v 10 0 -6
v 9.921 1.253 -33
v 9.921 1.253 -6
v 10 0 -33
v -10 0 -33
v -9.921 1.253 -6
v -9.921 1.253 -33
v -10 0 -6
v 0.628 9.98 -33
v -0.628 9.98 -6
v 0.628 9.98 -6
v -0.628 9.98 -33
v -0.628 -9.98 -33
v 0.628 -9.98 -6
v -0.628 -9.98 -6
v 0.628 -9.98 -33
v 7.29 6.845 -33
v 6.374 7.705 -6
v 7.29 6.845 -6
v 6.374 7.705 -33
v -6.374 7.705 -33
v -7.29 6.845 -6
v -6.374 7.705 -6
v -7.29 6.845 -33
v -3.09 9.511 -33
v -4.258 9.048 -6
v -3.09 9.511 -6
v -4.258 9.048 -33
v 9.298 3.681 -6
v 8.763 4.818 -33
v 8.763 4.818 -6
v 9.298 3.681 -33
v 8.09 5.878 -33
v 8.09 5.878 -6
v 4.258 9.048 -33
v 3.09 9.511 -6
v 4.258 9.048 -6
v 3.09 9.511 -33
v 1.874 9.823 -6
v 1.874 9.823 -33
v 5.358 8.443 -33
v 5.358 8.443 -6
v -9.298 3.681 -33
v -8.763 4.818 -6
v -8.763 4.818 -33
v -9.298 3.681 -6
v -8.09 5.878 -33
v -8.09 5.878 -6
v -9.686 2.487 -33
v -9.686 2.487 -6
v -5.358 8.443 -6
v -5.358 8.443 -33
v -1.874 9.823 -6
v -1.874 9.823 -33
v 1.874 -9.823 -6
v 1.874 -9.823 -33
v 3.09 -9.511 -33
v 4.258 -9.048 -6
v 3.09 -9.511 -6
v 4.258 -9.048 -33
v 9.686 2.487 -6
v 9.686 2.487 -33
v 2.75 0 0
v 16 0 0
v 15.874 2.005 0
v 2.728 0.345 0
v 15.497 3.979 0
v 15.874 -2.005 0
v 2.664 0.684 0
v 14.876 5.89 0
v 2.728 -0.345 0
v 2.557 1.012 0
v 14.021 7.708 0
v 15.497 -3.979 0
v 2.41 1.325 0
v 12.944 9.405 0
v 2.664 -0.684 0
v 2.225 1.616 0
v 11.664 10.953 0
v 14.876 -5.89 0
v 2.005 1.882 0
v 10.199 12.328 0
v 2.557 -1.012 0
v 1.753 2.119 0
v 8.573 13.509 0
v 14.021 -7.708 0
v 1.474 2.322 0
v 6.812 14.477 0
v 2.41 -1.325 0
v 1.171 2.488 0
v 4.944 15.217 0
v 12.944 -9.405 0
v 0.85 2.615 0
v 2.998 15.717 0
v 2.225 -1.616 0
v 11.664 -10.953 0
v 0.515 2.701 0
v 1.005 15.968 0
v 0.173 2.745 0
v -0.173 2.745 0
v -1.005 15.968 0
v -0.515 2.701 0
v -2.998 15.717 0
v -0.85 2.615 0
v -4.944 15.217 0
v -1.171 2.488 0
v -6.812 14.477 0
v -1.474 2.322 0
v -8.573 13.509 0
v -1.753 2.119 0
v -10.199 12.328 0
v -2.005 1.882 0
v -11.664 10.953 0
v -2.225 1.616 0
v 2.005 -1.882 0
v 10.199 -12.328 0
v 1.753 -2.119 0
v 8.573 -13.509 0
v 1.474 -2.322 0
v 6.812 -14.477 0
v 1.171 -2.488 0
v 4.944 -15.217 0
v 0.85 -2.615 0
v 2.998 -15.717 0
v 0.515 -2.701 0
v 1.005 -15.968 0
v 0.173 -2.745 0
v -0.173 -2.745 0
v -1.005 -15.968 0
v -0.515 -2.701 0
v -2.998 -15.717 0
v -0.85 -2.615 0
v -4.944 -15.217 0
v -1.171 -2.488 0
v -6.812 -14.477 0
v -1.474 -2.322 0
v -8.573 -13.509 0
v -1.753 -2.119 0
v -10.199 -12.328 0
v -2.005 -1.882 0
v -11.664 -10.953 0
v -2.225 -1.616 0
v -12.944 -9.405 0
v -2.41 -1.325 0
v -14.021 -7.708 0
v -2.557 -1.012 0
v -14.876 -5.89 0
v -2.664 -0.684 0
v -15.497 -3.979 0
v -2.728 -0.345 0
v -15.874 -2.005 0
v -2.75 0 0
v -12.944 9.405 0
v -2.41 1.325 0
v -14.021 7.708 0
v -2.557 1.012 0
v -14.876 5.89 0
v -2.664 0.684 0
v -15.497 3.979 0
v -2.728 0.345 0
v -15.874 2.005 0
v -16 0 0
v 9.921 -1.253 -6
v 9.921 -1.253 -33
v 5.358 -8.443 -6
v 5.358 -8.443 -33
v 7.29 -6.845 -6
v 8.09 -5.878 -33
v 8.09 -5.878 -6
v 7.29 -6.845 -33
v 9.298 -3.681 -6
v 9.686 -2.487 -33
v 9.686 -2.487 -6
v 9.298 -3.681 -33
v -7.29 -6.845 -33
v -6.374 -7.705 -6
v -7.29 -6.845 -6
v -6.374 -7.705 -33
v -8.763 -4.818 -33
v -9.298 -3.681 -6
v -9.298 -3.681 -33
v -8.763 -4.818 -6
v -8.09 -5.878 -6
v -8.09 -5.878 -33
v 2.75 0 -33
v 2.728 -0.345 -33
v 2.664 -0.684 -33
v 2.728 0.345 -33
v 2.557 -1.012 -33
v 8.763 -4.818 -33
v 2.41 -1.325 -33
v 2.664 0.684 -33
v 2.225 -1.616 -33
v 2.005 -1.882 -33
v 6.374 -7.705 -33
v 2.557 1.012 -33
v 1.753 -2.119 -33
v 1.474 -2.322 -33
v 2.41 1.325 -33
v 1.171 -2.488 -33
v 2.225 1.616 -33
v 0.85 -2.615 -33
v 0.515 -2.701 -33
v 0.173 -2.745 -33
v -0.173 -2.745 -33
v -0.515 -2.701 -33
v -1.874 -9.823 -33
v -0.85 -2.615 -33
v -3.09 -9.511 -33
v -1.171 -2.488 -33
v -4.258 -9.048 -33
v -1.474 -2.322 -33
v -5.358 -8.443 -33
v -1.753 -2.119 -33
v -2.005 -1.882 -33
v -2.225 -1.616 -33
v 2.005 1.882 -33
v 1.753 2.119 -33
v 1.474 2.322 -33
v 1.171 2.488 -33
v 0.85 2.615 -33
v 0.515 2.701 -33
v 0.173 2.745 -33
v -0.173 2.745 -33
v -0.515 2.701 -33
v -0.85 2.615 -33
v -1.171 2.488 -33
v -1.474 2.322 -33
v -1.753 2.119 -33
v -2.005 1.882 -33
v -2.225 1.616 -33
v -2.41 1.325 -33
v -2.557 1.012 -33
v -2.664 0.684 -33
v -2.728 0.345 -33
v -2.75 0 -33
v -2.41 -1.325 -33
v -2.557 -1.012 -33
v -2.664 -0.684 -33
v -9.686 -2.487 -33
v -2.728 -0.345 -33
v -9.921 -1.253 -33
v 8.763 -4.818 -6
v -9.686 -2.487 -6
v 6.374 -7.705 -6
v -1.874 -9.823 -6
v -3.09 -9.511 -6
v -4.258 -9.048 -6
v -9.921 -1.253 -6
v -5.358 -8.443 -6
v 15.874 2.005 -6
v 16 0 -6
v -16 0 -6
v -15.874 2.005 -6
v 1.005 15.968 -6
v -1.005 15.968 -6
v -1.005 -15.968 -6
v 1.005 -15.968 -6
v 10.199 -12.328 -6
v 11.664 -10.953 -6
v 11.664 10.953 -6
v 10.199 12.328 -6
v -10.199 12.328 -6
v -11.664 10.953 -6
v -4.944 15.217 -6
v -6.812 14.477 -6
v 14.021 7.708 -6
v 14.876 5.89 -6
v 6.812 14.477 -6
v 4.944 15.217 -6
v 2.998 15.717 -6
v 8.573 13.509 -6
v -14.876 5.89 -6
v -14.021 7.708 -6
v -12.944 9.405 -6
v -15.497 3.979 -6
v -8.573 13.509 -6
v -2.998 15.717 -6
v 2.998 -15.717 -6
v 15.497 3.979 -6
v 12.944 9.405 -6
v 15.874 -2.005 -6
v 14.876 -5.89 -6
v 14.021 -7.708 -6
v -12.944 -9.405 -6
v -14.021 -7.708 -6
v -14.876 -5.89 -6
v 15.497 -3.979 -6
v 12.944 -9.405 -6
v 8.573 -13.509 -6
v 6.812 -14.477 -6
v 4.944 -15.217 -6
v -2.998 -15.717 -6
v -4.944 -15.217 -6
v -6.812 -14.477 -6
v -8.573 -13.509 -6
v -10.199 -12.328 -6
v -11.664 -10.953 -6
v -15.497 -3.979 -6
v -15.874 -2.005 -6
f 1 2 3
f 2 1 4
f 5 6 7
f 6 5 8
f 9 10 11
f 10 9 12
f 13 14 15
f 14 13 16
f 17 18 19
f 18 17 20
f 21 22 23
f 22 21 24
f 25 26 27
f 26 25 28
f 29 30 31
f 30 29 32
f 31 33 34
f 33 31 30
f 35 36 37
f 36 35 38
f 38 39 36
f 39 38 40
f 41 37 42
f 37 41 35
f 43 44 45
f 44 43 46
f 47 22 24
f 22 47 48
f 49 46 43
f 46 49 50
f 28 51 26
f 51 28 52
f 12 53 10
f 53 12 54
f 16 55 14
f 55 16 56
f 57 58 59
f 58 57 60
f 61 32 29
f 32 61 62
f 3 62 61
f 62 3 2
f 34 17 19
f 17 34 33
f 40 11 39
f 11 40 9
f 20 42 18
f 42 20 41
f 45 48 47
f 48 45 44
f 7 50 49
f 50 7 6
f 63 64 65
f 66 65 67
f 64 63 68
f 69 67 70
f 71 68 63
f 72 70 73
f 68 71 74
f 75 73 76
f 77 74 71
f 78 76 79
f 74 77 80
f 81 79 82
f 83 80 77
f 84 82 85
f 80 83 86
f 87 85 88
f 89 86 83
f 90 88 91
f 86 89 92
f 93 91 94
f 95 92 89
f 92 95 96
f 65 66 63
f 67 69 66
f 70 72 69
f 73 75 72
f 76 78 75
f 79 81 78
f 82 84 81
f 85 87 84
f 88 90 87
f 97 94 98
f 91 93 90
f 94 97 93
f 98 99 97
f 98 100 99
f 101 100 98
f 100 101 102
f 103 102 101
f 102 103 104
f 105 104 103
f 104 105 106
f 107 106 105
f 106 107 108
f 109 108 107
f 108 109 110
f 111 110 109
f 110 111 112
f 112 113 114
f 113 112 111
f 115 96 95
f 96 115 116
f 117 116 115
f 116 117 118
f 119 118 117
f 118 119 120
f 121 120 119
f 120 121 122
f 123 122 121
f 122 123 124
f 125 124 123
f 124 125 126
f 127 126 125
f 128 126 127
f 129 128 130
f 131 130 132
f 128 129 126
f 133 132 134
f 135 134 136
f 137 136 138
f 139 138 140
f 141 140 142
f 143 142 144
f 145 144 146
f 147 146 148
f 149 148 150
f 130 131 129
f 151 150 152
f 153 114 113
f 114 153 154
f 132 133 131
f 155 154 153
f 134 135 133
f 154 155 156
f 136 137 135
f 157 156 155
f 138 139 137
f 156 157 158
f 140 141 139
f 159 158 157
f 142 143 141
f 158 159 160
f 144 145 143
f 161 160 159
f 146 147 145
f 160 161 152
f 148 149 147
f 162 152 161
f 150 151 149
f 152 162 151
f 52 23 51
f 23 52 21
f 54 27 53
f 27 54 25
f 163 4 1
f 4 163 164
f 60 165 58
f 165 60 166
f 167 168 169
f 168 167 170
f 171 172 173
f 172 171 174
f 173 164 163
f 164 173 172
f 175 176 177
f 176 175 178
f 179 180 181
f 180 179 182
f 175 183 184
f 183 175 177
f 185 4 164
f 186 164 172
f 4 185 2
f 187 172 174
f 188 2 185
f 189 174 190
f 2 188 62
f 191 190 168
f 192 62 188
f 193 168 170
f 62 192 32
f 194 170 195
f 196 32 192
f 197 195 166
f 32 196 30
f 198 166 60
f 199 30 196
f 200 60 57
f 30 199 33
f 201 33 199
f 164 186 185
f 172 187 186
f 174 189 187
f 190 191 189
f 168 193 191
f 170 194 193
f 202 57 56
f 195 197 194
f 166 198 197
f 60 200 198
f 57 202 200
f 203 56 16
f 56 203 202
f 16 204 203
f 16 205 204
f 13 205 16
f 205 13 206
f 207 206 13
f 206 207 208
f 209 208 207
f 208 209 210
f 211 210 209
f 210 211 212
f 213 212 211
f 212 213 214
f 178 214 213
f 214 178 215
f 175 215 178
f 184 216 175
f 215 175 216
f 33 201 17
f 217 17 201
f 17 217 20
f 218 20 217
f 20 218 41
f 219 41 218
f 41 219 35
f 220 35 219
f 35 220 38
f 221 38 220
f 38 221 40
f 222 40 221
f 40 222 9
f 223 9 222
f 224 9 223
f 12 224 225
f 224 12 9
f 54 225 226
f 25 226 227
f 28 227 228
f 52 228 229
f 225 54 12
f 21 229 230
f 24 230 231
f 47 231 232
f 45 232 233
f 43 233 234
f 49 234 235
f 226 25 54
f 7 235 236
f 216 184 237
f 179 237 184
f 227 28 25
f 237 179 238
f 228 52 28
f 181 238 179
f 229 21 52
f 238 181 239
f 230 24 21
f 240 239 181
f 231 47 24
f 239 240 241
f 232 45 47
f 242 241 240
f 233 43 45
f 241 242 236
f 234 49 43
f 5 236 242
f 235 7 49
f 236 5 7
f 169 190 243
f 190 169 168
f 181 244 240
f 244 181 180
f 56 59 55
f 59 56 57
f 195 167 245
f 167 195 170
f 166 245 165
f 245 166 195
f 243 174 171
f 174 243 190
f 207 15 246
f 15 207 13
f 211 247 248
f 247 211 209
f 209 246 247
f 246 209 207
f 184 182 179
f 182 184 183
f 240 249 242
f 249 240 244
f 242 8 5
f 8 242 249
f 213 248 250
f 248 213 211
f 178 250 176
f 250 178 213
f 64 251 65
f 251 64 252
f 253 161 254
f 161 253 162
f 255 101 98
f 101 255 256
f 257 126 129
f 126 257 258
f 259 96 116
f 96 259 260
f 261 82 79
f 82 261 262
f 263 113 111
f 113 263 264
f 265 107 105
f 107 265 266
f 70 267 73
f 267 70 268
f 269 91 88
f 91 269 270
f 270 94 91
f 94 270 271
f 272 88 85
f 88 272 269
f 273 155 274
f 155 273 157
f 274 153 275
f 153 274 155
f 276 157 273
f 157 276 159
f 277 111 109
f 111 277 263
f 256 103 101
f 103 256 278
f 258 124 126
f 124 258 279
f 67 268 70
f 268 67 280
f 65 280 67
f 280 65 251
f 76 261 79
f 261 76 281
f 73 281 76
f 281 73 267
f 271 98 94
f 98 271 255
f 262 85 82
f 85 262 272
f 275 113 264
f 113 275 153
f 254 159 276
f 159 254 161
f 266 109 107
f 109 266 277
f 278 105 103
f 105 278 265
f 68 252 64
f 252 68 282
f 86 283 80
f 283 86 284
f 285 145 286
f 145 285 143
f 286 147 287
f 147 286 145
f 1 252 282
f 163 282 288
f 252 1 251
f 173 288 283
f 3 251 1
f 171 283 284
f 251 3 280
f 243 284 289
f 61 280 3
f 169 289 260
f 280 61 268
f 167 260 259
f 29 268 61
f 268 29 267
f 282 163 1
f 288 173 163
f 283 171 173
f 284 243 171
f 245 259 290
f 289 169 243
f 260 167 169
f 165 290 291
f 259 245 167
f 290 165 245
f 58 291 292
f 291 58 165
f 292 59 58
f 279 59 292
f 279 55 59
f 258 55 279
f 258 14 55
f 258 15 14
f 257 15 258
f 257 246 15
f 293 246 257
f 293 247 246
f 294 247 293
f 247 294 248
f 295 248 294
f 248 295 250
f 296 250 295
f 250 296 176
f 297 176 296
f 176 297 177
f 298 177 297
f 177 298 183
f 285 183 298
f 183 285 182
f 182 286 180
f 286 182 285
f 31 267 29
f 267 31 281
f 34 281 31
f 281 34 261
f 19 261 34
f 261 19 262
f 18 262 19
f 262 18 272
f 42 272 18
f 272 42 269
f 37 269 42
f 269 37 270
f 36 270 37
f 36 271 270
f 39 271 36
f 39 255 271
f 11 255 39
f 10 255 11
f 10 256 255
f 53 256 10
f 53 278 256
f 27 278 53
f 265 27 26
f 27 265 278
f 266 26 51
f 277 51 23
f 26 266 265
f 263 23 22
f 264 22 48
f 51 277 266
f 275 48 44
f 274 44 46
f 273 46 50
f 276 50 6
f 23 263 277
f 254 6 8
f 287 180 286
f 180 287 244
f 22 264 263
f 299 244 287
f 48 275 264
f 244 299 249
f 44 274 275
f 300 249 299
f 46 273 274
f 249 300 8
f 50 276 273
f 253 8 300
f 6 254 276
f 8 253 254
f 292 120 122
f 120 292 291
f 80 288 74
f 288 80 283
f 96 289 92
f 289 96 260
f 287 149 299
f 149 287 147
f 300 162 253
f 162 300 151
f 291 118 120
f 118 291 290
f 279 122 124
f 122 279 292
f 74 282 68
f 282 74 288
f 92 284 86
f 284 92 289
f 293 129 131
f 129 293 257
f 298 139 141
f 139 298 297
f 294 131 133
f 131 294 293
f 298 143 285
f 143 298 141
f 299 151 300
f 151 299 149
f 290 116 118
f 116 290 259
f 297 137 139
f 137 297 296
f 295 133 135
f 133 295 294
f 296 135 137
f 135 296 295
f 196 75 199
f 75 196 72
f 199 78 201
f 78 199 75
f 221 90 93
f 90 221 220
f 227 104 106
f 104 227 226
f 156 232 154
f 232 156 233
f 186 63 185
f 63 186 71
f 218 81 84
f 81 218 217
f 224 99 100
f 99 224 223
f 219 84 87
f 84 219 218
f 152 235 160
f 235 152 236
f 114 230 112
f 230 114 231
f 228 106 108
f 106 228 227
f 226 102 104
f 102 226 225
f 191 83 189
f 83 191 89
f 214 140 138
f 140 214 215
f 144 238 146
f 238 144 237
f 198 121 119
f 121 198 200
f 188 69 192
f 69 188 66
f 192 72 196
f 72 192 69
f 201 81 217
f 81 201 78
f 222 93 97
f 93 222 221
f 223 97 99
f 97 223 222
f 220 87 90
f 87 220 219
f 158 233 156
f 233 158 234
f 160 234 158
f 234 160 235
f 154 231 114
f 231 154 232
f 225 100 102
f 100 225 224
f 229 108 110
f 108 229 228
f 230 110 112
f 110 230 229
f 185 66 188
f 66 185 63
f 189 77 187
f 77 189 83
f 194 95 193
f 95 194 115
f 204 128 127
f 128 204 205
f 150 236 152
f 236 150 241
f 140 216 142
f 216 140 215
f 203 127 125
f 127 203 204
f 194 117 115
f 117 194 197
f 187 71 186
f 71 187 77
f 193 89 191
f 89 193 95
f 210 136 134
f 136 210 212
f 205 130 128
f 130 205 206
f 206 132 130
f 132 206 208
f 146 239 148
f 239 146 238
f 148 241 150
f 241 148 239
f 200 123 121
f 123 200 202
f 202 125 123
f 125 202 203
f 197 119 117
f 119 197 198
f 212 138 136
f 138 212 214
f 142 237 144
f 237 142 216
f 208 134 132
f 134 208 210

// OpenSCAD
$fn = 50;


difference() {
	union() {
		translate(v = [0, 0, -33.0000000000]) {
			cylinder(h = 33, r = 10.0000000000);
		}
		translate(v = [0, 0, -6.0000000000]) {
			cylinder(h = 6, r = 16.0000000000);
		}
	}
	union() {
		#translate(v = [0, 0, -33]) {
			cylinder(h = 33, r = 2.7500000000);
		}
	}
}
